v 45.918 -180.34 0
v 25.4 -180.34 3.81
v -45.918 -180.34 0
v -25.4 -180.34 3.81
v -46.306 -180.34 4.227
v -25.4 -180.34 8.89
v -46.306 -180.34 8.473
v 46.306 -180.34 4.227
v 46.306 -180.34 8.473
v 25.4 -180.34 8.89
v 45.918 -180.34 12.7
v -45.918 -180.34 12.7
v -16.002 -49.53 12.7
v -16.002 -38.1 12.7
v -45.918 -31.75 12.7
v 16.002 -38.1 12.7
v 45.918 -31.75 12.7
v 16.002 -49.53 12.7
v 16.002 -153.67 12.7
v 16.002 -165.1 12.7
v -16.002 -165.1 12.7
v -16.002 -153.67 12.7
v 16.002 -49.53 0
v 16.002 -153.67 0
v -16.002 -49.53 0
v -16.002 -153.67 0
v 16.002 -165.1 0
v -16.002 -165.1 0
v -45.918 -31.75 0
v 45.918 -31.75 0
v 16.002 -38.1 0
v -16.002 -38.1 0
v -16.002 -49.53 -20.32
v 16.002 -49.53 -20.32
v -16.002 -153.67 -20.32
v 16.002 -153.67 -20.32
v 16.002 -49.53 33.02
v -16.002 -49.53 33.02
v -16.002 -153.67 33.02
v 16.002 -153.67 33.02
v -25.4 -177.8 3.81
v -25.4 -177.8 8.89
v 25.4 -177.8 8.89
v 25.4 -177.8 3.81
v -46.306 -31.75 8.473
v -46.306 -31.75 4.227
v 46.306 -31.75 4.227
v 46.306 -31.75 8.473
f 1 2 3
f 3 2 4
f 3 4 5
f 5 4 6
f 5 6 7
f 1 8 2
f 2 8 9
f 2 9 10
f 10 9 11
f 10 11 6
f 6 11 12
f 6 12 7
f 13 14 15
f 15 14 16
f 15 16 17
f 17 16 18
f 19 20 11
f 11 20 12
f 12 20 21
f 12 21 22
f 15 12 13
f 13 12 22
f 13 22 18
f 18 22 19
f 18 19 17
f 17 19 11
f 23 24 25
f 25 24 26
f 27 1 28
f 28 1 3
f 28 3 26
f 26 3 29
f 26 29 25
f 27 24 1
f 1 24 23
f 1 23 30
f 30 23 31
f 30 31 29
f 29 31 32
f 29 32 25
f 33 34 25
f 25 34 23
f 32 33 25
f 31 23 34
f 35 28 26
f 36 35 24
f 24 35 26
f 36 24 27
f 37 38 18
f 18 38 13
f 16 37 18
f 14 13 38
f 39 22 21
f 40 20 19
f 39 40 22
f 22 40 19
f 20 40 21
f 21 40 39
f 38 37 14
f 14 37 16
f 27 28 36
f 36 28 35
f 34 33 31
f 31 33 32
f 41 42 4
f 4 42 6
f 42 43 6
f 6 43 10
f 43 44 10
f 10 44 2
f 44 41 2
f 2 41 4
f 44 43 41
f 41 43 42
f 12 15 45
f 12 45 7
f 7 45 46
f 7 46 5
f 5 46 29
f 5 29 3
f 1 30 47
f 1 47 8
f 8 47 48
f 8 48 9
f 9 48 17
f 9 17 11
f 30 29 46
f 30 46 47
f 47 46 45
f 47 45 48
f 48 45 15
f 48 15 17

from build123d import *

# Parameters (mm, degrees)
SKETCH1_W           = 99.06
SKETCH1_H           = 360.68
BOSS_EXTRUDE1_DEPTH = 12.7
SKETCH3_W           = 32.004
SKETCH3_H           = 11.43
BOSS_EXTRUDE3_DEPTH = 20.32
SKETCH2_W           = 55.88
SKETCH2_H           = 12.7
BOSS_EXTRUDE4_DEPTH = 7.62
CUT_EXTRUDE2_DEPTH  = 38.1
SKETCH6_W           = 50.8
SKETCH6_H           = 5.08
CUT_EXTRUDE3_DEPTH  = 2.54
SKETCH7_R           = 50.8
SKETCH7_R_2         = 46.355
CUT_EXTRUDE4_DEPTH  = 366.559302576
SKETCH9_W           = 155.282238602
SKETCH9_H           = 226.847096393
CUT_EXTRUDE9_DEPTH  = 25.4


with BuildPart() as part:
    # Sketch1 → Boss-Extrude1 (new body)
    with BuildSketch(Plane.XY):
        Rectangle(SKETCH1_W, SKETCH1_H)
    extrude(amount=BOSS_EXTRUDE1_DEPTH)

    # Sketch3 → Boss-Extrude3 (add)
    with BuildSketch(Plane(origin=(0, 0, 0), x_dir=(-1, 0, 0), z_dir=(0, 0, -1))):
        with Locations((0, -43.815)):
            Rectangle(SKETCH3_W, SKETCH3_H)
        with Locations((0, -159.385)):
            Rectangle(SKETCH3_W, SKETCH3_H)
    boss_extrude3 = extrude(amount=BOSS_EXTRUDE3_DEPTH)

    # Sketch2 → Boss-Extrude4 (add, symmetric)
    with BuildSketch(Plane.XY.offset(12.7)):
        with Locations((0, 171.45)):
            Rectangle(SKETCH2_W, SKETCH2_H)
        with Locations((0, -19.05)):
            Rectangle(SKETCH2_W, SKETCH2_H)
    extrude(amount=BOSS_EXTRUDE4_DEPTH, both=True)

    # Mirror1: Boss-Extrude3 across plane
    add(boss_extrude3.mirror(Plane.XY.offset(6.35)))

    # Sketch5 → Cut-Extrude2 (cut, symmetric)
    with BuildSketch(Plane(origin=(0, 0, 0), x_dir=(0, 0, -1), z_dir=(1, 0, 0))):
        Polygon((20.32, -153.67), (0, -165.1), (20.32, -165.1), align=None)
        Polygon((-33.02, -153.67), (-12.7, -165.1), (-33.02, -165.1), align=None)
        Polygon((-33.02, -49.53), (-33.02, -38.1), (-12.7, -38.1), align=None)
        Polygon((20.32, -49.53), (0, -38.1), (20.32, -38.1), align=None)
        Polygon((-12.7, 177.8), (-20.32, 165.1), (-20.32, 177.8), align=None)
        Polygon((-20.32, -12.7), (-12.7, -25.4), (-20.32, -25.4), align=None)
    extrude(amount=CUT_EXTRUDE2_DEPTH, both=True, mode=Mode.SUBTRACT)

    # Sketch6 → Cut-Extrude3 (cut)
    with BuildSketch(Plane(origin=(0, 180.34, 0), x_dir=(1, 0, 0), z_dir=(0, 1, 0))):
        with Locations((0, -6.35)):
            Rectangle(SKETCH6_W, SKETCH6_H)
    cut_extrude3 = extrude(amount=-CUT_EXTRUDE3_DEPTH, mode=Mode.SUBTRACT)

    # Mirror2: Cut-Extrude3 across plane
    add(cut_extrude3.mirror(Plane.ZX), mode=Mode.SUBTRACT)

    # Sketch7 → Cut-Extrude4 (cut, through all)
    with BuildSketch(Plane(origin=(0, 180.34, 0), x_dir=(1, 0, 0), z_dir=(0, 1, 0))):
        with Locations((0, -6.35)):
            Circle(SKETCH7_R)
        with Locations((0, -6.35)):
            Circle(SKETCH7_R_2, mode=Mode.SUBTRACT)
    extrude(amount=-CUT_EXTRUDE4_DEPTH, mode=Mode.SUBTRACT)

    # Sketch9 → Cut-Extrude9 (cut, symmetric)
    with BuildSketch(Plane.XY):
        with Locations((0, 81.673548197)):
            Rectangle(SKETCH9_W, SKETCH9_H)
    extrude(amount=CUT_EXTRUDE9_DEPTH, both=True, mode=Mode.SUBTRACT)


solid = part.part
